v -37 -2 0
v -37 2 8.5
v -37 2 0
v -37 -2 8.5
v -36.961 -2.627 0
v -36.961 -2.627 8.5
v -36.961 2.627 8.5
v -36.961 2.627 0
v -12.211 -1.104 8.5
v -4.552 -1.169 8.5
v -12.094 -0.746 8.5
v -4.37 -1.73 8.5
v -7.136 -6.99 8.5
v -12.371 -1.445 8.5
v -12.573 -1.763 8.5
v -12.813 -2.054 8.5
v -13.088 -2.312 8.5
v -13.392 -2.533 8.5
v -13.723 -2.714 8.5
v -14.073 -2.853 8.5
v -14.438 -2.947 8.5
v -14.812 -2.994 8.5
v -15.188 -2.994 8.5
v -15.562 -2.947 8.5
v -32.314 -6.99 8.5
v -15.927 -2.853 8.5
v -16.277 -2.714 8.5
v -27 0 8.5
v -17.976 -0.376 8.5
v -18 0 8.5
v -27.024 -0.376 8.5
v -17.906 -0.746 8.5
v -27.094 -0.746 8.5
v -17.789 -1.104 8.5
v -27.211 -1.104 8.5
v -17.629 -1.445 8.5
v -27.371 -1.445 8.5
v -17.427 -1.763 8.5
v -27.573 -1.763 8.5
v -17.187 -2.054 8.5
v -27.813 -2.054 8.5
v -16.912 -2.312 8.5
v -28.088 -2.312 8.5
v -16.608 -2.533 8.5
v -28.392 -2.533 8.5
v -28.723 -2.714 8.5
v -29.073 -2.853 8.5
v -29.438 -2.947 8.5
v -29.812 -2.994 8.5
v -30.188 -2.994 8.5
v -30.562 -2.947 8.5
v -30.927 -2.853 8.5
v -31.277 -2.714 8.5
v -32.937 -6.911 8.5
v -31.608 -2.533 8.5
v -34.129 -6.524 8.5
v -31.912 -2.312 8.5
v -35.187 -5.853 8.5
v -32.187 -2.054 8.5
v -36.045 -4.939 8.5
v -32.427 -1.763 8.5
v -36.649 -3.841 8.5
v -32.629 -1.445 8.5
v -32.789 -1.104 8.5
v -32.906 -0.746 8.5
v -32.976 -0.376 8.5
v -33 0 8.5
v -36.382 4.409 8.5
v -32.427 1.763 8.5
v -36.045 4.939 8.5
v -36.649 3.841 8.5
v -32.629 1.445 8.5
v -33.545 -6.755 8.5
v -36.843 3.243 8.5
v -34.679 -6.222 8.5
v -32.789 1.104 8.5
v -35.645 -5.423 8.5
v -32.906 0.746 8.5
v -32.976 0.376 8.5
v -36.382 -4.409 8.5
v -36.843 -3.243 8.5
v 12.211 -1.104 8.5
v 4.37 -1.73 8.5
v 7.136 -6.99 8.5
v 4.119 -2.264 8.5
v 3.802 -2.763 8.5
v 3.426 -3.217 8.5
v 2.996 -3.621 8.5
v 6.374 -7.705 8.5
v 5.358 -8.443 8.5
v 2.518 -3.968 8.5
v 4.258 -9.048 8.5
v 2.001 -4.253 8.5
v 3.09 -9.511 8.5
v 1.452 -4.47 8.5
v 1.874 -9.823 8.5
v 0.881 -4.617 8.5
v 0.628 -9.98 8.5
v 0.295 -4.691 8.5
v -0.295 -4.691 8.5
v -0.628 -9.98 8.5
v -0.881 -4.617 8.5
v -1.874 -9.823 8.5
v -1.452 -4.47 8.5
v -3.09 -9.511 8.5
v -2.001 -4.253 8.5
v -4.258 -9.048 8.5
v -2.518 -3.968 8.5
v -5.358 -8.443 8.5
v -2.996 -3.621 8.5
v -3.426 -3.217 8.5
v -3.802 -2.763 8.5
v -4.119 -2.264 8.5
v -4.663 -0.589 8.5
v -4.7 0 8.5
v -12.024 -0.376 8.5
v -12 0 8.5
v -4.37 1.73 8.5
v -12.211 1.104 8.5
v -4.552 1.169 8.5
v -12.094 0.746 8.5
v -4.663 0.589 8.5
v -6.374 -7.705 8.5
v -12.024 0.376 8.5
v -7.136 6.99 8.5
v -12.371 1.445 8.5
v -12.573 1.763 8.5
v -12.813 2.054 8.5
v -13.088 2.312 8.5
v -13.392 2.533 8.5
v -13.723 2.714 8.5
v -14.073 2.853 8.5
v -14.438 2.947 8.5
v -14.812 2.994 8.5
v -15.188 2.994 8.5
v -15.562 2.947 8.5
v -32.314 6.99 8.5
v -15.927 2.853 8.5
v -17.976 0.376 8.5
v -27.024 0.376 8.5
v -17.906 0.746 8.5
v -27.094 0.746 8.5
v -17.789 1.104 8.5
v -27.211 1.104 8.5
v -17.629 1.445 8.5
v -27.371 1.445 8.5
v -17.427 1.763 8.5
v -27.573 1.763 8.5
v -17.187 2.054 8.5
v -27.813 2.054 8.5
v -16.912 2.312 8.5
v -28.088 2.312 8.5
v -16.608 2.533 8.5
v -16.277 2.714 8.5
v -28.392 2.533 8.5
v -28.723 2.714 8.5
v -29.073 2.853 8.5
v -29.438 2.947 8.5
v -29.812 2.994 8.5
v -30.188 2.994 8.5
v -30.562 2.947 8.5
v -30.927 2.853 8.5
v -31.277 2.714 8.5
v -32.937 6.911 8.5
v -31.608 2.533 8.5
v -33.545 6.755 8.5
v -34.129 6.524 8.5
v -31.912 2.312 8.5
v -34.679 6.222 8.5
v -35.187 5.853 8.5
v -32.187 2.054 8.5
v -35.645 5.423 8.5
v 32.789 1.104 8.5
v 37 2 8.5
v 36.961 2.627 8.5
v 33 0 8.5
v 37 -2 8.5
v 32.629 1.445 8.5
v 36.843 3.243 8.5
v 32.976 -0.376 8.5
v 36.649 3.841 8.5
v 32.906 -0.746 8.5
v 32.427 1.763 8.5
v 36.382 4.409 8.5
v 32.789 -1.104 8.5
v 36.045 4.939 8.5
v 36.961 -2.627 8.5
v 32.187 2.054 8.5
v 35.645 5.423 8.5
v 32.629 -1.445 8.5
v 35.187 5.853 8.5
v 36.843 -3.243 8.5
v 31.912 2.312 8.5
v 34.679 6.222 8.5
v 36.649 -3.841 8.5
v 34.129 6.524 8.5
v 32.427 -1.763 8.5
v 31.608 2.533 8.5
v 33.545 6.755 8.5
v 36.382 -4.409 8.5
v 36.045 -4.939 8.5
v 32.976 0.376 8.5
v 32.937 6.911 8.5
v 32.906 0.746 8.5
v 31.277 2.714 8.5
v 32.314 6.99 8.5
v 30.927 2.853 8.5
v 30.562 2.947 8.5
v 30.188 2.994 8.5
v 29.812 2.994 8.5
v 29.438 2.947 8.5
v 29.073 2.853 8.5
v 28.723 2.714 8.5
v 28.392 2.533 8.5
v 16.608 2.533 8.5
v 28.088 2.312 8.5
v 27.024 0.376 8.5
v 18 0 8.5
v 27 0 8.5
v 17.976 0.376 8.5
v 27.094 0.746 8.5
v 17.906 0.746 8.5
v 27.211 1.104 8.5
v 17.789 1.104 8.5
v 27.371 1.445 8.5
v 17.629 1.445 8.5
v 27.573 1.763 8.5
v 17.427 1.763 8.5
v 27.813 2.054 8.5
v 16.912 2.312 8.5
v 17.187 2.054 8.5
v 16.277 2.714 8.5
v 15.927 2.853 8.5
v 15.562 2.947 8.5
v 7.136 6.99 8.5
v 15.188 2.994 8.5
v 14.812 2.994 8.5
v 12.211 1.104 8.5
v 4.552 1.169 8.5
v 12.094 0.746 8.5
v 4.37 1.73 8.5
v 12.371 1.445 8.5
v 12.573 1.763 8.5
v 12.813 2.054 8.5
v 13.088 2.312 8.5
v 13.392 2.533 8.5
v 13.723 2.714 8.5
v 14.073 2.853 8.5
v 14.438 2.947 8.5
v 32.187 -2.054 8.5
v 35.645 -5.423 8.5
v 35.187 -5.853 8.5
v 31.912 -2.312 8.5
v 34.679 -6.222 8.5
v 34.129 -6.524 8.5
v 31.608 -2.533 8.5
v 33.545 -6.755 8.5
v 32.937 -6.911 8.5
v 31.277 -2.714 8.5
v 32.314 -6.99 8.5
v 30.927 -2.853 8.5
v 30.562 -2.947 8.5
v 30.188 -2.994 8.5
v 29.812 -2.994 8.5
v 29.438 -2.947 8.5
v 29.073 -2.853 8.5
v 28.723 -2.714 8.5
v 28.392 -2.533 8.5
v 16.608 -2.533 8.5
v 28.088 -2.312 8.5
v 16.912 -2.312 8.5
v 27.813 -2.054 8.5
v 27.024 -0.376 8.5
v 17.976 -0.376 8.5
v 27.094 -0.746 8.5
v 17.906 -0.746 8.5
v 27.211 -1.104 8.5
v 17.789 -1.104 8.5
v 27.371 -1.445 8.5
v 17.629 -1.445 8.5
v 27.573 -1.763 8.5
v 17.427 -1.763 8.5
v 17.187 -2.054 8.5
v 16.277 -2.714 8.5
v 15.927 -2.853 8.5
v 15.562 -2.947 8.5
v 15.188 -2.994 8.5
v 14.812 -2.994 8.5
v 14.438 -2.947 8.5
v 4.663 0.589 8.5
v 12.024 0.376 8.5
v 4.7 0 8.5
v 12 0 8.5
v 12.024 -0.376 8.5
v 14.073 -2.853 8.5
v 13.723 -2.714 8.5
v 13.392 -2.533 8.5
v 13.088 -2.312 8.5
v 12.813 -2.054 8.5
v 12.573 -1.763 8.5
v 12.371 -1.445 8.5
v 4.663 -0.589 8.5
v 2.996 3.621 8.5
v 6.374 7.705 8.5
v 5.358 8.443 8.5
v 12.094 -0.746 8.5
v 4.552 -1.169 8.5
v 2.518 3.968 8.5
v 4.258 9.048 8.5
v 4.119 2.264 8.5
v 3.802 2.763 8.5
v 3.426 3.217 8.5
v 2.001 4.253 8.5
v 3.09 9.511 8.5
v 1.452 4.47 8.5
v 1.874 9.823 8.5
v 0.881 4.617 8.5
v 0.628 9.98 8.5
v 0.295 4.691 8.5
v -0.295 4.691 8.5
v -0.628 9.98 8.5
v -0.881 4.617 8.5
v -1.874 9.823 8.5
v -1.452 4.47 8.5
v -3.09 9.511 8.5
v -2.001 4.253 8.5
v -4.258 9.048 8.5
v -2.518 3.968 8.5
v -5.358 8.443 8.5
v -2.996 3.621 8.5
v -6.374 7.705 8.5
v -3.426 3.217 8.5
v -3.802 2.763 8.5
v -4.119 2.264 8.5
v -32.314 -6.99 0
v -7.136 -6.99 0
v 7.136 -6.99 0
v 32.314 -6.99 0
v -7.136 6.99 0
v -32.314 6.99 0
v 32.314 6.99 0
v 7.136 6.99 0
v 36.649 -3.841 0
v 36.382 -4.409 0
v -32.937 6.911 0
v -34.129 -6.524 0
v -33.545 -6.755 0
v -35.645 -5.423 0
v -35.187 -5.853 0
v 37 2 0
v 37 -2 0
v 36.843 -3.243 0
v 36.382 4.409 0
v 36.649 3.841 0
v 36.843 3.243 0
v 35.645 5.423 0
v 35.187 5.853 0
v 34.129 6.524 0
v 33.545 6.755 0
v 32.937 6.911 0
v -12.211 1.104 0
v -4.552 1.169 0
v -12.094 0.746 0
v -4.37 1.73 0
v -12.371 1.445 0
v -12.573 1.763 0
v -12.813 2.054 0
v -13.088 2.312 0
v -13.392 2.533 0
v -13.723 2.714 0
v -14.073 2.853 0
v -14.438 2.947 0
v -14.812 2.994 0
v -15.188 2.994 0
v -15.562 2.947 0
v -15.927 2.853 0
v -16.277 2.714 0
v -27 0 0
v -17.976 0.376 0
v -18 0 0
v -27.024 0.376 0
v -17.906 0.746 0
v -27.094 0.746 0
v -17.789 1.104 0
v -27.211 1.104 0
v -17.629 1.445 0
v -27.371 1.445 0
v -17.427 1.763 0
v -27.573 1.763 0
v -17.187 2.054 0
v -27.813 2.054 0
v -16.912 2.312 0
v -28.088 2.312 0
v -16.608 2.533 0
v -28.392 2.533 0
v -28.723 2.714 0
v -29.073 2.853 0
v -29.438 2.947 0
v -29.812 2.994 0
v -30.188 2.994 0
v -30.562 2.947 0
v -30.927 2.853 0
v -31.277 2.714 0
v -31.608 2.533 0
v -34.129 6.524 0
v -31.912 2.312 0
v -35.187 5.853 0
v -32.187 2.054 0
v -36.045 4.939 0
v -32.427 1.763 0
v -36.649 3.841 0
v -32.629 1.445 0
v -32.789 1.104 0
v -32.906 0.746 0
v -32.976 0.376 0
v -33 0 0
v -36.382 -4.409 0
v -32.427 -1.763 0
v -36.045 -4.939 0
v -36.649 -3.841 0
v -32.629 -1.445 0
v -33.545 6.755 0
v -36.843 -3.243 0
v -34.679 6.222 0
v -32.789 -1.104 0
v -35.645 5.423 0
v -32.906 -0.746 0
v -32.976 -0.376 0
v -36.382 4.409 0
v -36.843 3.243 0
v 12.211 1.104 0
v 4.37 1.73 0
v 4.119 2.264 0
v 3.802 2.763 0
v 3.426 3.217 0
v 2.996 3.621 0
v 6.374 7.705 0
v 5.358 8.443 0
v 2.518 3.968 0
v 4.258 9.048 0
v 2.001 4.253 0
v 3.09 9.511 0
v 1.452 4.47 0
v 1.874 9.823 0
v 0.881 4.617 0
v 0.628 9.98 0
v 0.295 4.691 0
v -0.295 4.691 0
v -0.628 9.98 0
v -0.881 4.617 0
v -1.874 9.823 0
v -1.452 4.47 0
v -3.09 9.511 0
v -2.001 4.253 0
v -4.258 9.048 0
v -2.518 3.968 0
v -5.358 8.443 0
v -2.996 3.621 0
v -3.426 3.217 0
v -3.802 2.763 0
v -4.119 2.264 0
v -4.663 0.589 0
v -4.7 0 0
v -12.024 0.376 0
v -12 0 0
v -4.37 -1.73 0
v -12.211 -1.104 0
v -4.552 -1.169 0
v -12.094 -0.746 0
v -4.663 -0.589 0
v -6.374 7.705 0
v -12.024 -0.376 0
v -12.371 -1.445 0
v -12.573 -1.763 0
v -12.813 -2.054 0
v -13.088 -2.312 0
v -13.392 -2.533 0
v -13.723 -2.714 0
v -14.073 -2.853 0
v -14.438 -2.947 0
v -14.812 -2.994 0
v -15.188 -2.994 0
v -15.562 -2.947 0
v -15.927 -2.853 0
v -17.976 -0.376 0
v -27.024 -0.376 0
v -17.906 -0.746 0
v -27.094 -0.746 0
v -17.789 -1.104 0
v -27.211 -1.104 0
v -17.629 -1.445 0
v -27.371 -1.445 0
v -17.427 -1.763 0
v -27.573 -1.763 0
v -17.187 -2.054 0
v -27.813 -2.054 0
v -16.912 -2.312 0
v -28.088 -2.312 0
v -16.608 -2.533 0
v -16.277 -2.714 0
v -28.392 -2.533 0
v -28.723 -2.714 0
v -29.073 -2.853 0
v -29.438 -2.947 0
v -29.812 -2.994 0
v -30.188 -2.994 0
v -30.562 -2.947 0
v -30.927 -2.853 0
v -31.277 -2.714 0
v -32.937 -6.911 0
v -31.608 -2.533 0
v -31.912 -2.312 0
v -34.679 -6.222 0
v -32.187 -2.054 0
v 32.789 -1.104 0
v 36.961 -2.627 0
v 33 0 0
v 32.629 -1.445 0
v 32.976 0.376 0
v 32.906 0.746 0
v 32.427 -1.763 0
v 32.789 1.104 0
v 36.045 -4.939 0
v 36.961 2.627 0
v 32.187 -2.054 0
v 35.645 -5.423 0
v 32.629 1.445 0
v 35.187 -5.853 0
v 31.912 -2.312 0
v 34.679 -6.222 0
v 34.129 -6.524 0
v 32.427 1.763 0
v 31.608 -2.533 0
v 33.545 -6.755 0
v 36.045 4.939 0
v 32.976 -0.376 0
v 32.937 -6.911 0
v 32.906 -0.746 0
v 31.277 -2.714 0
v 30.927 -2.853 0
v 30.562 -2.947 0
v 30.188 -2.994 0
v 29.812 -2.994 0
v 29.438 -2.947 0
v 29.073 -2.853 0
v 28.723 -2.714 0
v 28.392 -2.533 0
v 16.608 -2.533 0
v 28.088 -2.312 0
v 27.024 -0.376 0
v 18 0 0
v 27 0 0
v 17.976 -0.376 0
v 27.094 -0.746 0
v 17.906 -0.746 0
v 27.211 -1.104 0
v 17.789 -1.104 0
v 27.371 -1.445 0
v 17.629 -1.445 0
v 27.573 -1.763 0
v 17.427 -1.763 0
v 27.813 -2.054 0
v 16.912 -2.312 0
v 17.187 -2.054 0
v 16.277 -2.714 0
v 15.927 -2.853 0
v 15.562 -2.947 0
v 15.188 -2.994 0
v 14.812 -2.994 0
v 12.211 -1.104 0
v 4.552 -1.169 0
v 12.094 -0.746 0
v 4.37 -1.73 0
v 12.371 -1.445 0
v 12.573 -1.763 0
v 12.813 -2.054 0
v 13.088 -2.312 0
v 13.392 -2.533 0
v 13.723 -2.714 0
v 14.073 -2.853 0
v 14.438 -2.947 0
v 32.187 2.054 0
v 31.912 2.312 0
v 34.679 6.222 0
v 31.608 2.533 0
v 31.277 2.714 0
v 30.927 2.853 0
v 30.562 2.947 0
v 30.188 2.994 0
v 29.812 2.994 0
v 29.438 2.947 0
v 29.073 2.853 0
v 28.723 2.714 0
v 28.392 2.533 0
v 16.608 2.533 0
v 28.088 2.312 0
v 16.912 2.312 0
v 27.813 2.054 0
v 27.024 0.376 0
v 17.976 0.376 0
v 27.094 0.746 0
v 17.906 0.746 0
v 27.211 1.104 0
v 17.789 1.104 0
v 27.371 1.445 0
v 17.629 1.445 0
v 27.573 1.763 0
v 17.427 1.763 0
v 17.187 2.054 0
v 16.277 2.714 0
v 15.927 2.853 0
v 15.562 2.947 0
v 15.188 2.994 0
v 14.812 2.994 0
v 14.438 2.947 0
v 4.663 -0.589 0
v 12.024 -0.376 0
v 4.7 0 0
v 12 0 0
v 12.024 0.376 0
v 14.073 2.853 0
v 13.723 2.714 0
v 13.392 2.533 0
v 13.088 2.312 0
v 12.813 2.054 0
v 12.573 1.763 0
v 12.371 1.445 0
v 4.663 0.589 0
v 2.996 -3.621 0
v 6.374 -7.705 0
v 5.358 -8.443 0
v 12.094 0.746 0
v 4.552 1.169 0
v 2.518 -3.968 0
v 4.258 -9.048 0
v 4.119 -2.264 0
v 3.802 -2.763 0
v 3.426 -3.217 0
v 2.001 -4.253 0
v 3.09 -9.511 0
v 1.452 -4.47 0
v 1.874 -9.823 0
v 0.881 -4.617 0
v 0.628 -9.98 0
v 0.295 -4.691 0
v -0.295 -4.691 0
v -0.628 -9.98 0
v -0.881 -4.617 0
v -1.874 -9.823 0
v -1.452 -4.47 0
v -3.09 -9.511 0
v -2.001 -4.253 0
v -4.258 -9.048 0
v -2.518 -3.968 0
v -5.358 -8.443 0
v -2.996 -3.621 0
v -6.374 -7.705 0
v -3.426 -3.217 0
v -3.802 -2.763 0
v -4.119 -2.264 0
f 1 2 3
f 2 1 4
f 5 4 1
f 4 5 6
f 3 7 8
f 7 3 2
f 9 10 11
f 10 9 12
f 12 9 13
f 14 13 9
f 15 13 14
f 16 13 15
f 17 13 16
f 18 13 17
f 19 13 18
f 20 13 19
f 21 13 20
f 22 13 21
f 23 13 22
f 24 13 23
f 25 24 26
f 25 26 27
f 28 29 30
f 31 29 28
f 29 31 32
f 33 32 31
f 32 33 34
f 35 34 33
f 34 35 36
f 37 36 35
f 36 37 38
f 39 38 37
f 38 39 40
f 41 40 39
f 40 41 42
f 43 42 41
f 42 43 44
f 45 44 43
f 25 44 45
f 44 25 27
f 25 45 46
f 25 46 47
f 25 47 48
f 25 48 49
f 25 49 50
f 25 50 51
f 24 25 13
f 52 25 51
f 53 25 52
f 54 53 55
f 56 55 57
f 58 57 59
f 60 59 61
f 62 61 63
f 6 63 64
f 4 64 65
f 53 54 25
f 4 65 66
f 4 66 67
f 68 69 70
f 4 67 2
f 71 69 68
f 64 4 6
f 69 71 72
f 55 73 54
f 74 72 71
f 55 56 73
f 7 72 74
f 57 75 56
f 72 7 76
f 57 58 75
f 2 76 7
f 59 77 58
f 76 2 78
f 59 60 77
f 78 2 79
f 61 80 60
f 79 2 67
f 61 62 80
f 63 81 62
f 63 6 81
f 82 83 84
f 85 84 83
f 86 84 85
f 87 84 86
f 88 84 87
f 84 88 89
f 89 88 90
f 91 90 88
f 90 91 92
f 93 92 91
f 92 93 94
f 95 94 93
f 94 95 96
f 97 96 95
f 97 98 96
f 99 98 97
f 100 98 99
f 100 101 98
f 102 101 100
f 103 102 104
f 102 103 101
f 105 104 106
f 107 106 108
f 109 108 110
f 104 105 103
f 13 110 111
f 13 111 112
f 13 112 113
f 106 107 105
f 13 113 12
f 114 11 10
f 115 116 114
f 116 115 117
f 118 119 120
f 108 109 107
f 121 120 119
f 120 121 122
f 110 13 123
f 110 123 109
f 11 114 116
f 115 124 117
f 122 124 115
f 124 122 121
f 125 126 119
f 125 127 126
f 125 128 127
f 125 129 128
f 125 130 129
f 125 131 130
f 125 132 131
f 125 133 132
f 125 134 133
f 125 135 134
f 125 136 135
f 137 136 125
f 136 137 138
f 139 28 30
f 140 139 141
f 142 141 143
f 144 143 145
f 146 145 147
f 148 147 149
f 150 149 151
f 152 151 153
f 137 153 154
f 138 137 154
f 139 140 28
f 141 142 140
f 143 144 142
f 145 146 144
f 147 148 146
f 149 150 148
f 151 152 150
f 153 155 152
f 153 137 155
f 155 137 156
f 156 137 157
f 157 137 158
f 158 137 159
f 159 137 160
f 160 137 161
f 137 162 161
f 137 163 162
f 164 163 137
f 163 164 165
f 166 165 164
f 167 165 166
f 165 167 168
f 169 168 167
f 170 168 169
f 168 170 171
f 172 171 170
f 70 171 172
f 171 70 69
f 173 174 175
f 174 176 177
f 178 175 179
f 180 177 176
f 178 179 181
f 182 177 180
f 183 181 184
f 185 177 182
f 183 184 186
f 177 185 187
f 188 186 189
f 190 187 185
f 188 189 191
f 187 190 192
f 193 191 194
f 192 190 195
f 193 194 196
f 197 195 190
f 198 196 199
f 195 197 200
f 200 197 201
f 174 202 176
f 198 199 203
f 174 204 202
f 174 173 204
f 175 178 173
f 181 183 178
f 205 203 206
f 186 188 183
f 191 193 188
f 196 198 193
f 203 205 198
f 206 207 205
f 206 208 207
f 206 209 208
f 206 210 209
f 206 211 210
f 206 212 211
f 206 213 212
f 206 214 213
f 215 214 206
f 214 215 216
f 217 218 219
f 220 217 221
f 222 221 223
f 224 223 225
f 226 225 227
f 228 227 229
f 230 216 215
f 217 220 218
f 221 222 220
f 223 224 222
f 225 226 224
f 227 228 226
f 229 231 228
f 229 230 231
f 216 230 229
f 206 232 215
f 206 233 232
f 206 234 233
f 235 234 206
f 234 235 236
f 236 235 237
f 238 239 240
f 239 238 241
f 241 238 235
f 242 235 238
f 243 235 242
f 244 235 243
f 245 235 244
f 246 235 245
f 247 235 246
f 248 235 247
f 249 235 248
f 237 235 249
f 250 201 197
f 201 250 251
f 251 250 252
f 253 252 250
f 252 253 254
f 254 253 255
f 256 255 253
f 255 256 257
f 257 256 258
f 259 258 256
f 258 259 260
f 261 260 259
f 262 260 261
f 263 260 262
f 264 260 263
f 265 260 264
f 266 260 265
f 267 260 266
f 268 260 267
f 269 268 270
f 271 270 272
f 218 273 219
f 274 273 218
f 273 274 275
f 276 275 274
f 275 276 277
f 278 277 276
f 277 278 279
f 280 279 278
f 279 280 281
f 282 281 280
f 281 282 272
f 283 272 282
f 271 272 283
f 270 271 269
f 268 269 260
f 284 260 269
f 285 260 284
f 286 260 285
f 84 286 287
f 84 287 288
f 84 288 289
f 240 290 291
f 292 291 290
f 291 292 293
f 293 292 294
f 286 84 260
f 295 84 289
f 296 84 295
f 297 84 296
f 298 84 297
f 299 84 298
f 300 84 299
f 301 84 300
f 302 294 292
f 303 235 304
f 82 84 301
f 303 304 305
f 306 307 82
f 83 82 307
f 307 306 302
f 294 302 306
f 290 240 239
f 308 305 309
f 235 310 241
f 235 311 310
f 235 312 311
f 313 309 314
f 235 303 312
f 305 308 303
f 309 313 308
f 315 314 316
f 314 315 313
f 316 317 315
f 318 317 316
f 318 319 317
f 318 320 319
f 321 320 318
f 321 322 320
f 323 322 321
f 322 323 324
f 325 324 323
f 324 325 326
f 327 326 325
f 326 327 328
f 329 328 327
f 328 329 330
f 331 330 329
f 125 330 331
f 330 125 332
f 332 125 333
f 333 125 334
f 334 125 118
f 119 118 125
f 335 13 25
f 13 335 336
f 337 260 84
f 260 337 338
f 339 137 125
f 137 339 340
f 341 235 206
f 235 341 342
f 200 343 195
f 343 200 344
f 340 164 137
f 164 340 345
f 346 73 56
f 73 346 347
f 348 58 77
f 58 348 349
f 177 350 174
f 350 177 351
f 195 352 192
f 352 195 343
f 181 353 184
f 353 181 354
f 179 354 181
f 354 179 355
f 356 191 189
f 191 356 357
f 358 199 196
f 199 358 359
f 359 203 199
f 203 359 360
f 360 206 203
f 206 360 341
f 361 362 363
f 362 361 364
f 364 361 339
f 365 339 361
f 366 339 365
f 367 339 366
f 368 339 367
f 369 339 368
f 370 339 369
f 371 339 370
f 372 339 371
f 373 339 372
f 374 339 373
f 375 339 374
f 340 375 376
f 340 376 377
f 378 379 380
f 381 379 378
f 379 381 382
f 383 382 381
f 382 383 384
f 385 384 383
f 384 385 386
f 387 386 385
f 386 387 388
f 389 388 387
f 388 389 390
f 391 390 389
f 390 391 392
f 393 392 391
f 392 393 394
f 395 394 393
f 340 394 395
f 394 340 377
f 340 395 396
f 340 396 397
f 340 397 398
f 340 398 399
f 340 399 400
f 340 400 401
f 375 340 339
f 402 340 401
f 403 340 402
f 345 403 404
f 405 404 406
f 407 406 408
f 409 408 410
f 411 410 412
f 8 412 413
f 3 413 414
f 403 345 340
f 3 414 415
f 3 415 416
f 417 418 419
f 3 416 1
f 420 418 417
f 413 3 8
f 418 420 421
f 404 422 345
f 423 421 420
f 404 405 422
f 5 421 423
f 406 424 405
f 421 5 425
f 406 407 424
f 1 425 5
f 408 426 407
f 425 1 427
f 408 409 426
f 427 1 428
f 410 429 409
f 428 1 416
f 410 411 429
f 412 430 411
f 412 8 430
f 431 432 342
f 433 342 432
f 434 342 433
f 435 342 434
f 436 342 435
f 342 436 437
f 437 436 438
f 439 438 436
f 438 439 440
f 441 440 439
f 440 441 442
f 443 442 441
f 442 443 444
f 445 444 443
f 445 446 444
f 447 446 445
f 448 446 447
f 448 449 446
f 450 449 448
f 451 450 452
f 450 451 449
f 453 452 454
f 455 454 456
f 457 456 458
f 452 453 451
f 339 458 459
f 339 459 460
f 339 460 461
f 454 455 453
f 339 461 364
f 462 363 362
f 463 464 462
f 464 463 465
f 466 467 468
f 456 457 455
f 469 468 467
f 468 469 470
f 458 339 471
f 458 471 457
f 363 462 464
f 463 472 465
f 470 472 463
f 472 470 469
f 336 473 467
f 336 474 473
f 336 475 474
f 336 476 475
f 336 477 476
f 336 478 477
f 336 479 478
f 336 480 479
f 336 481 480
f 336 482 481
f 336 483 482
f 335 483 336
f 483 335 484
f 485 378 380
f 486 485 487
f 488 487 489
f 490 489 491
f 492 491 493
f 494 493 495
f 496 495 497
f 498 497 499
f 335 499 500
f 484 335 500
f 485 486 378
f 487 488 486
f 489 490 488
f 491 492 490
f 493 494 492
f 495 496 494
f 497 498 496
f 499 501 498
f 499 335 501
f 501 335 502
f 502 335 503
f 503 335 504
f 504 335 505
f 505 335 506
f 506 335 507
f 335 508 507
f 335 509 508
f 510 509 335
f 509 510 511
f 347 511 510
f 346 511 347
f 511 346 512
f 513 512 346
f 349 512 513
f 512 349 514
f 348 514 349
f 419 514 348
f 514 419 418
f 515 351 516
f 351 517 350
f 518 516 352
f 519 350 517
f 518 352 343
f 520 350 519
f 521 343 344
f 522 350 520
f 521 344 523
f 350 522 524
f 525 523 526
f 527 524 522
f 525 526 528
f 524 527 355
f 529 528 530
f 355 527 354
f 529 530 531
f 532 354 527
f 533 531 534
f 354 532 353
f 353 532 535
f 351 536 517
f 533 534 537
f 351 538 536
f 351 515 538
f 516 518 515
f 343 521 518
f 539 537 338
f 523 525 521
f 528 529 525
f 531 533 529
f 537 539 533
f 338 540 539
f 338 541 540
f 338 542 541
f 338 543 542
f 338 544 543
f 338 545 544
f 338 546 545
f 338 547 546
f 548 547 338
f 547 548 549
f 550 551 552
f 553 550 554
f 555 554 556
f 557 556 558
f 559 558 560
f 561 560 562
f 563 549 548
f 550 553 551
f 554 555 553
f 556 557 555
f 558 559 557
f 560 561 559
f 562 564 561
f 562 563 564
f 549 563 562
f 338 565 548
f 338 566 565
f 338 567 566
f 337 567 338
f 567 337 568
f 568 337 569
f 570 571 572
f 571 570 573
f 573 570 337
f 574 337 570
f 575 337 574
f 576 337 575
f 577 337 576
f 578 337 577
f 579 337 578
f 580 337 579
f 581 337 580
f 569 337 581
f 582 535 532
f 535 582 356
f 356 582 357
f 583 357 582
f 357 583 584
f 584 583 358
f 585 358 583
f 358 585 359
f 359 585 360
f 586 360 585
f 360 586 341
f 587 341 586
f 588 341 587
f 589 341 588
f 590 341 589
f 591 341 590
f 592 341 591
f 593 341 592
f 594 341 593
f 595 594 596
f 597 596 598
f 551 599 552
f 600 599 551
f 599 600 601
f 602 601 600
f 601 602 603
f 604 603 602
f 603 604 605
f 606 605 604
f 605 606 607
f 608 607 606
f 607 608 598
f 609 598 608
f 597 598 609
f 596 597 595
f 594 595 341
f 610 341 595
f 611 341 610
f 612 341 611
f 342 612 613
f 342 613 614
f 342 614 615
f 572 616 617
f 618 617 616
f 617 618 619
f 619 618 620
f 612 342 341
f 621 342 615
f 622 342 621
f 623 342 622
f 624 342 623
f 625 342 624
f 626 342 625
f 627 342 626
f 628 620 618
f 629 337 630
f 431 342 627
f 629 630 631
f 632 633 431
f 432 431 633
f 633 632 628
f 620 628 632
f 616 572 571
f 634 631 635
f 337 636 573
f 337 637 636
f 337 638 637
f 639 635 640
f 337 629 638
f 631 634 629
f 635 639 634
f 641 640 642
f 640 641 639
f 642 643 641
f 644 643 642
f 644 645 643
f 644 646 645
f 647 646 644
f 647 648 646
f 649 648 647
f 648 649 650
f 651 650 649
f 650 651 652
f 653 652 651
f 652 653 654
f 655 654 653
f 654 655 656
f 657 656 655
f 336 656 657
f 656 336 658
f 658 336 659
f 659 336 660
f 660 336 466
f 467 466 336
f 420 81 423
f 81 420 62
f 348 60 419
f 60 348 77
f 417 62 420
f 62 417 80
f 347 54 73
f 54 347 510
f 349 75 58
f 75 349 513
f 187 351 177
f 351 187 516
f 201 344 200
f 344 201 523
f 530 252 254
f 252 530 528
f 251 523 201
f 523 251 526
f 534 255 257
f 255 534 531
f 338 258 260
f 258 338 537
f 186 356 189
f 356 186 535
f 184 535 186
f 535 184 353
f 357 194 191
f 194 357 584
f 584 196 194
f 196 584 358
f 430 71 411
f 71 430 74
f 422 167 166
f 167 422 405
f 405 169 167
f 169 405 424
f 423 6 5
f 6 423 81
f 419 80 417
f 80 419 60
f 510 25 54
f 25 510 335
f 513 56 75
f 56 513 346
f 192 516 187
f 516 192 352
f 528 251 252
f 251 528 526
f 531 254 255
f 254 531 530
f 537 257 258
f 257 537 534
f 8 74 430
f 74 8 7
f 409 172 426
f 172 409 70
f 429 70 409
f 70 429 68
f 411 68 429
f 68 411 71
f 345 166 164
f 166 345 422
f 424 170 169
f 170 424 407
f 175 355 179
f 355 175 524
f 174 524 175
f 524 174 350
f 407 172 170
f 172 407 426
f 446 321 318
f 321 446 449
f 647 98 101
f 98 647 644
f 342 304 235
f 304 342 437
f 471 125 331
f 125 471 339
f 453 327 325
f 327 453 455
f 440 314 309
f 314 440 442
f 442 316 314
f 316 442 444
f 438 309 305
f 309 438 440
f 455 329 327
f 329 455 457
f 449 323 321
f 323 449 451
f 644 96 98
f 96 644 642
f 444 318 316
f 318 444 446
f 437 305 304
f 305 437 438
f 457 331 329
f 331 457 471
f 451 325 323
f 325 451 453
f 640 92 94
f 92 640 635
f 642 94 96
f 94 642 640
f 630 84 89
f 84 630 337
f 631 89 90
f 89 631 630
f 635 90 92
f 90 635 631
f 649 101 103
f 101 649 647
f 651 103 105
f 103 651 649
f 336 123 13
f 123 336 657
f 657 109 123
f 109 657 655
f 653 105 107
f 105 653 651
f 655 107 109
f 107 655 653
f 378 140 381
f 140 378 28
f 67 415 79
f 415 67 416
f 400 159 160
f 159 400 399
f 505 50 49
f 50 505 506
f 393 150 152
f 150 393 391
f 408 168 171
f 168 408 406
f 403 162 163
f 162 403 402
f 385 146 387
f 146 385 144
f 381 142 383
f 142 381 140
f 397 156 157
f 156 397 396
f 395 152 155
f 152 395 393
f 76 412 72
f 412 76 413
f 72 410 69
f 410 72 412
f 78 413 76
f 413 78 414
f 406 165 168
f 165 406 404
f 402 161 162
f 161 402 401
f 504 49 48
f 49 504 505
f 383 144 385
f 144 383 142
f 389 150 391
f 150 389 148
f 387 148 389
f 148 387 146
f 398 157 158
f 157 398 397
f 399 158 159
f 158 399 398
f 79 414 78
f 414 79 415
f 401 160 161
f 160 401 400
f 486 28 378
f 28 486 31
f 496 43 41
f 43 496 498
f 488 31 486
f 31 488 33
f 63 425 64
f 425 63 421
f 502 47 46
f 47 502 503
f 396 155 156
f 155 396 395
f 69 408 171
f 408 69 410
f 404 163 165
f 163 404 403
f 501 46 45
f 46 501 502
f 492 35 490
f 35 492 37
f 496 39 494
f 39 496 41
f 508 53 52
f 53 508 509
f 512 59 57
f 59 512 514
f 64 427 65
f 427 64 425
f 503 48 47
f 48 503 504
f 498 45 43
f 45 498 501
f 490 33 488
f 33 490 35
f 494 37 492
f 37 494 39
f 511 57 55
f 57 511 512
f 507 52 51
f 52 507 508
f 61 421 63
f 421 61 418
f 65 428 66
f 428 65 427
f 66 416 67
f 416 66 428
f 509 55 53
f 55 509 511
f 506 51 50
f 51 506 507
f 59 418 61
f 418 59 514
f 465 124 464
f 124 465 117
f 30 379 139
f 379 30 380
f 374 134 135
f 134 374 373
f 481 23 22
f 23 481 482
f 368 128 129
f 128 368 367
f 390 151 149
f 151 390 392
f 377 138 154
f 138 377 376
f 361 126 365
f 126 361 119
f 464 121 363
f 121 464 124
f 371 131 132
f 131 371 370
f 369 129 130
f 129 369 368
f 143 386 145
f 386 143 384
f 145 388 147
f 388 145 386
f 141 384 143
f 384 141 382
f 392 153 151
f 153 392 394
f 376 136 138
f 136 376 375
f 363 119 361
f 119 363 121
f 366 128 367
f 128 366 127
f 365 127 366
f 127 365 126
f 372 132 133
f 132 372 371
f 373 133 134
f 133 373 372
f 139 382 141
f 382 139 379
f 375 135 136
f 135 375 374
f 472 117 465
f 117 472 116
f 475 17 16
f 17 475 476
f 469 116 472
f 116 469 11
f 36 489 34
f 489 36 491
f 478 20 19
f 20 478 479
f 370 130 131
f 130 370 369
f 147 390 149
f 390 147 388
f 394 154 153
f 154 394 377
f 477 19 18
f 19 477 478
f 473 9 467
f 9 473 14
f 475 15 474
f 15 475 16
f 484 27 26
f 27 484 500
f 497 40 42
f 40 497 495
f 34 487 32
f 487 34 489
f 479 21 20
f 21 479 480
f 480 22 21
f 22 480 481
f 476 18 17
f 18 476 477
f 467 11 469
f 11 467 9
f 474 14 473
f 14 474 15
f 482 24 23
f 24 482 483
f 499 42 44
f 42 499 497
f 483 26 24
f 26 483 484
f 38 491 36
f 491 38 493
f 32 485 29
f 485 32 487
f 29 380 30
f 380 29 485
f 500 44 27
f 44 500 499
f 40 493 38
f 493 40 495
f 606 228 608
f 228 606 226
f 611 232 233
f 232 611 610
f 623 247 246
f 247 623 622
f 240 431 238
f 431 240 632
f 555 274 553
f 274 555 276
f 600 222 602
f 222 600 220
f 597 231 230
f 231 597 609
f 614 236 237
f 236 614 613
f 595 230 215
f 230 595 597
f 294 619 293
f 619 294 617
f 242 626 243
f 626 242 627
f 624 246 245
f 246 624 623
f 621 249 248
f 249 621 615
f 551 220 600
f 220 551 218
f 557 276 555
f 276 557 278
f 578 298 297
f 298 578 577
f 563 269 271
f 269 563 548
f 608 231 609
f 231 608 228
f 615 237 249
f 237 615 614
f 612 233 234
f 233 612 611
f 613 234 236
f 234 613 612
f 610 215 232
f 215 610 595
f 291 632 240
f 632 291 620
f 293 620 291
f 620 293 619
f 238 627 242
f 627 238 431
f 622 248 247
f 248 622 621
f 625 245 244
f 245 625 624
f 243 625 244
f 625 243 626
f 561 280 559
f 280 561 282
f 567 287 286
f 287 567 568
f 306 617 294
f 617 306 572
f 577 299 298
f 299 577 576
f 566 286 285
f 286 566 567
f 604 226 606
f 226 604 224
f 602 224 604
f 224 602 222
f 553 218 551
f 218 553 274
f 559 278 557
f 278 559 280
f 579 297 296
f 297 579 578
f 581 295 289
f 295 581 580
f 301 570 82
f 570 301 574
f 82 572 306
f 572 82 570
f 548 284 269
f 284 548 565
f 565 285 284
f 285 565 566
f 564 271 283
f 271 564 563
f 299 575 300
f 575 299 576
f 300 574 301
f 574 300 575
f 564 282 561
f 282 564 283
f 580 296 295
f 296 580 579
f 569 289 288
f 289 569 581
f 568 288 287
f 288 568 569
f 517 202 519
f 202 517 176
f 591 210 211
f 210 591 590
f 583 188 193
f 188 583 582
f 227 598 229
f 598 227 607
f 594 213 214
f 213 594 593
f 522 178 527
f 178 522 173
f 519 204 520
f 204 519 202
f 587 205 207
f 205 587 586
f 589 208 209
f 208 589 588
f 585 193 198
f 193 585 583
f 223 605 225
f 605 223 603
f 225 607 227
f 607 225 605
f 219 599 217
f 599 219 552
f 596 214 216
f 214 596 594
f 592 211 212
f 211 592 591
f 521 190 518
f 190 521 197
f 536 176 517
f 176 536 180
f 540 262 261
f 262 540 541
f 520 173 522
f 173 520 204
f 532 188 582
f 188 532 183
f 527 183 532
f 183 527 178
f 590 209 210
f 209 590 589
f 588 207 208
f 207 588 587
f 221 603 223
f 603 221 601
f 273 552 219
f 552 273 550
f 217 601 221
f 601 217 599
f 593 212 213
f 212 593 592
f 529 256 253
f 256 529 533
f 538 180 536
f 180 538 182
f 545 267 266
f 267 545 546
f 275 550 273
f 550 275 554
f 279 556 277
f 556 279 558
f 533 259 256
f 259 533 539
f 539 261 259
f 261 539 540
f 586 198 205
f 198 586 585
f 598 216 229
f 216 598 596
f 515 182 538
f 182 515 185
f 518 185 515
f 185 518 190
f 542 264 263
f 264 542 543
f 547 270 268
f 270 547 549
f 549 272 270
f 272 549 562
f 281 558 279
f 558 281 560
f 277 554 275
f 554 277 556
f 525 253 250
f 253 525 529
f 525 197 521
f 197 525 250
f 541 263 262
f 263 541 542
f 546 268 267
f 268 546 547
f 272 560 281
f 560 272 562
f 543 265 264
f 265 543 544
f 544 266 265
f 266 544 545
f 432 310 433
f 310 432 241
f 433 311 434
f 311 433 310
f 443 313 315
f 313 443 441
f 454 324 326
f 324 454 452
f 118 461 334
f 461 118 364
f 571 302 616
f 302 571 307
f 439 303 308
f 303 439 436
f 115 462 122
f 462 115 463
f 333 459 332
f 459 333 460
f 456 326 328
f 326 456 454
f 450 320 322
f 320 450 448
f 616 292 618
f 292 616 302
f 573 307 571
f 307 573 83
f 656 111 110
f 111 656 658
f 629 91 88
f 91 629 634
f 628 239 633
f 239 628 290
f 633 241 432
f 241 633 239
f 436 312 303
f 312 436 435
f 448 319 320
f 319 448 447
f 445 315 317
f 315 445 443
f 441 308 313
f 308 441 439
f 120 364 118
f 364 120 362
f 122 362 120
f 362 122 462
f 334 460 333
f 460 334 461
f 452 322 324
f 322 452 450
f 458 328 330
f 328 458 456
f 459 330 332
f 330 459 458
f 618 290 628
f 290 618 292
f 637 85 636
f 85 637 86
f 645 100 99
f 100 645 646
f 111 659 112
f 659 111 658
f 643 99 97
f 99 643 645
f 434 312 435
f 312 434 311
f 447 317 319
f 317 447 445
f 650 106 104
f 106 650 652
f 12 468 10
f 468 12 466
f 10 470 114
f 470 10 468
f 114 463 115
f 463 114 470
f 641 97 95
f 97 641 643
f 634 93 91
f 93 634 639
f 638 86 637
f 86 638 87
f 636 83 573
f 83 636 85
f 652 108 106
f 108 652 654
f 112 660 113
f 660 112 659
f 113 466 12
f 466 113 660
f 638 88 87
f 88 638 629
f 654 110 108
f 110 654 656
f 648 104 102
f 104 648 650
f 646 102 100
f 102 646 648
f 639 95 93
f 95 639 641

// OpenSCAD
$fn = 50;


difference() {
	union() {
		translate(v = [0, 0, 0]) {
			rotate(a = [0, 0, 0]) {
				hull() {
					translate(v = [-32.0000000000, 2.0000000000, 0]) {
						rotate(a = [0, 0, 0]) {
							translate(v = [0, 0, 0]) {
								rotate(a = [0, 0, 0]) {
									cylinder(h = 8.5000000000, r = 5);
								}
							}
						}
					}
					translate(v = [32.0000000000, 2.0000000000, 0]) {
						rotate(a = [0, 0, 0]) {
							translate(v = [0, 0, 0]) {
								rotate(a = [0, 0, 0]) {
									cylinder(h = 8.5000000000, r = 5);
								}
							}
						}
					}
					translate(v = [-32.0000000000, -2.0000000000, 0]) {
						rotate(a = [0, 0, 0]) {
							translate(v = [0, 0, 0]) {
								rotate(a = [0, 0, 0]) {
									cylinder(h = 8.5000000000, r = 5);
								}
							}
						}
					}
					translate(v = [32.0000000000, -2.0000000000, 0]) {
						rotate(a = [0, 0, 0]) {
							translate(v = [0, 0, 0]) {
								rotate(a = [0, 0, 0]) {
									cylinder(h = 8.5000000000, r = 5);
								}
							}
						}
					}
				}
			}
		}
		translate(v = [0, 0, 0.0000000000]) {
			rotate(a = [0, 0, 0]) {
				cylinder(h = 8.5000000000, r = 10.0000000000);
			}
		}
	}
	union() {
		translate(v = [-30.0000000000, 0.0000000000, 0]) {
			rotate(a = [0, 0, 0]) {
				translate(v = [0, 0, -50]) {
					rotate(a = [0, 0, 0]) {
						cylinder(h = 100, r = 3.0000000000);
					}
				}
			}
		}
		translate(v = [-15.0000000000, 0.0000000000, 0]) {
			rotate(a = [0, 0, 0]) {
				translate(v = [0, 0, -50]) {
					rotate(a = [0, 0, 0]) {
						cylinder(h = 100, r = 3.0000000000);
					}
				}
			}
		}
		translate(v = [0.0000000000, 0.0000000000, 0]) {
			rotate(a = [0, 0, 0]) {
				translate(v = [0, 0, -50]) {
					rotate(a = [0, 0, 0]) {
						cylinder(h = 100, r = 3.0000000000);
					}
				}
			}
		}
		translate(v = [15.0000000000, 0.0000000000, 0]) {
			rotate(a = [0, 0, 0]) {
				translate(v = [0, 0, -50]) {
					rotate(a = [0, 0, 0]) {
						cylinder(h = 100, r = 3.0000000000);
					}
				}
			}
		}
		translate(v = [30.0000000000, 0.0000000000, 0]) {
			rotate(a = [0, 0, 0]) {
				translate(v = [0, 0, -50]) {
					rotate(a = [0, 0, 0]) {
						cylinder(h = 100, r = 3.0000000000);
					}
				}
			}
		}
		translate(v = [0, 0, -125.0000000000]) {
			rotate(a = [0, 0, 0]) {
				cylinder(h = 250, r = 4.7000000000);
			}
		}
	}
}
